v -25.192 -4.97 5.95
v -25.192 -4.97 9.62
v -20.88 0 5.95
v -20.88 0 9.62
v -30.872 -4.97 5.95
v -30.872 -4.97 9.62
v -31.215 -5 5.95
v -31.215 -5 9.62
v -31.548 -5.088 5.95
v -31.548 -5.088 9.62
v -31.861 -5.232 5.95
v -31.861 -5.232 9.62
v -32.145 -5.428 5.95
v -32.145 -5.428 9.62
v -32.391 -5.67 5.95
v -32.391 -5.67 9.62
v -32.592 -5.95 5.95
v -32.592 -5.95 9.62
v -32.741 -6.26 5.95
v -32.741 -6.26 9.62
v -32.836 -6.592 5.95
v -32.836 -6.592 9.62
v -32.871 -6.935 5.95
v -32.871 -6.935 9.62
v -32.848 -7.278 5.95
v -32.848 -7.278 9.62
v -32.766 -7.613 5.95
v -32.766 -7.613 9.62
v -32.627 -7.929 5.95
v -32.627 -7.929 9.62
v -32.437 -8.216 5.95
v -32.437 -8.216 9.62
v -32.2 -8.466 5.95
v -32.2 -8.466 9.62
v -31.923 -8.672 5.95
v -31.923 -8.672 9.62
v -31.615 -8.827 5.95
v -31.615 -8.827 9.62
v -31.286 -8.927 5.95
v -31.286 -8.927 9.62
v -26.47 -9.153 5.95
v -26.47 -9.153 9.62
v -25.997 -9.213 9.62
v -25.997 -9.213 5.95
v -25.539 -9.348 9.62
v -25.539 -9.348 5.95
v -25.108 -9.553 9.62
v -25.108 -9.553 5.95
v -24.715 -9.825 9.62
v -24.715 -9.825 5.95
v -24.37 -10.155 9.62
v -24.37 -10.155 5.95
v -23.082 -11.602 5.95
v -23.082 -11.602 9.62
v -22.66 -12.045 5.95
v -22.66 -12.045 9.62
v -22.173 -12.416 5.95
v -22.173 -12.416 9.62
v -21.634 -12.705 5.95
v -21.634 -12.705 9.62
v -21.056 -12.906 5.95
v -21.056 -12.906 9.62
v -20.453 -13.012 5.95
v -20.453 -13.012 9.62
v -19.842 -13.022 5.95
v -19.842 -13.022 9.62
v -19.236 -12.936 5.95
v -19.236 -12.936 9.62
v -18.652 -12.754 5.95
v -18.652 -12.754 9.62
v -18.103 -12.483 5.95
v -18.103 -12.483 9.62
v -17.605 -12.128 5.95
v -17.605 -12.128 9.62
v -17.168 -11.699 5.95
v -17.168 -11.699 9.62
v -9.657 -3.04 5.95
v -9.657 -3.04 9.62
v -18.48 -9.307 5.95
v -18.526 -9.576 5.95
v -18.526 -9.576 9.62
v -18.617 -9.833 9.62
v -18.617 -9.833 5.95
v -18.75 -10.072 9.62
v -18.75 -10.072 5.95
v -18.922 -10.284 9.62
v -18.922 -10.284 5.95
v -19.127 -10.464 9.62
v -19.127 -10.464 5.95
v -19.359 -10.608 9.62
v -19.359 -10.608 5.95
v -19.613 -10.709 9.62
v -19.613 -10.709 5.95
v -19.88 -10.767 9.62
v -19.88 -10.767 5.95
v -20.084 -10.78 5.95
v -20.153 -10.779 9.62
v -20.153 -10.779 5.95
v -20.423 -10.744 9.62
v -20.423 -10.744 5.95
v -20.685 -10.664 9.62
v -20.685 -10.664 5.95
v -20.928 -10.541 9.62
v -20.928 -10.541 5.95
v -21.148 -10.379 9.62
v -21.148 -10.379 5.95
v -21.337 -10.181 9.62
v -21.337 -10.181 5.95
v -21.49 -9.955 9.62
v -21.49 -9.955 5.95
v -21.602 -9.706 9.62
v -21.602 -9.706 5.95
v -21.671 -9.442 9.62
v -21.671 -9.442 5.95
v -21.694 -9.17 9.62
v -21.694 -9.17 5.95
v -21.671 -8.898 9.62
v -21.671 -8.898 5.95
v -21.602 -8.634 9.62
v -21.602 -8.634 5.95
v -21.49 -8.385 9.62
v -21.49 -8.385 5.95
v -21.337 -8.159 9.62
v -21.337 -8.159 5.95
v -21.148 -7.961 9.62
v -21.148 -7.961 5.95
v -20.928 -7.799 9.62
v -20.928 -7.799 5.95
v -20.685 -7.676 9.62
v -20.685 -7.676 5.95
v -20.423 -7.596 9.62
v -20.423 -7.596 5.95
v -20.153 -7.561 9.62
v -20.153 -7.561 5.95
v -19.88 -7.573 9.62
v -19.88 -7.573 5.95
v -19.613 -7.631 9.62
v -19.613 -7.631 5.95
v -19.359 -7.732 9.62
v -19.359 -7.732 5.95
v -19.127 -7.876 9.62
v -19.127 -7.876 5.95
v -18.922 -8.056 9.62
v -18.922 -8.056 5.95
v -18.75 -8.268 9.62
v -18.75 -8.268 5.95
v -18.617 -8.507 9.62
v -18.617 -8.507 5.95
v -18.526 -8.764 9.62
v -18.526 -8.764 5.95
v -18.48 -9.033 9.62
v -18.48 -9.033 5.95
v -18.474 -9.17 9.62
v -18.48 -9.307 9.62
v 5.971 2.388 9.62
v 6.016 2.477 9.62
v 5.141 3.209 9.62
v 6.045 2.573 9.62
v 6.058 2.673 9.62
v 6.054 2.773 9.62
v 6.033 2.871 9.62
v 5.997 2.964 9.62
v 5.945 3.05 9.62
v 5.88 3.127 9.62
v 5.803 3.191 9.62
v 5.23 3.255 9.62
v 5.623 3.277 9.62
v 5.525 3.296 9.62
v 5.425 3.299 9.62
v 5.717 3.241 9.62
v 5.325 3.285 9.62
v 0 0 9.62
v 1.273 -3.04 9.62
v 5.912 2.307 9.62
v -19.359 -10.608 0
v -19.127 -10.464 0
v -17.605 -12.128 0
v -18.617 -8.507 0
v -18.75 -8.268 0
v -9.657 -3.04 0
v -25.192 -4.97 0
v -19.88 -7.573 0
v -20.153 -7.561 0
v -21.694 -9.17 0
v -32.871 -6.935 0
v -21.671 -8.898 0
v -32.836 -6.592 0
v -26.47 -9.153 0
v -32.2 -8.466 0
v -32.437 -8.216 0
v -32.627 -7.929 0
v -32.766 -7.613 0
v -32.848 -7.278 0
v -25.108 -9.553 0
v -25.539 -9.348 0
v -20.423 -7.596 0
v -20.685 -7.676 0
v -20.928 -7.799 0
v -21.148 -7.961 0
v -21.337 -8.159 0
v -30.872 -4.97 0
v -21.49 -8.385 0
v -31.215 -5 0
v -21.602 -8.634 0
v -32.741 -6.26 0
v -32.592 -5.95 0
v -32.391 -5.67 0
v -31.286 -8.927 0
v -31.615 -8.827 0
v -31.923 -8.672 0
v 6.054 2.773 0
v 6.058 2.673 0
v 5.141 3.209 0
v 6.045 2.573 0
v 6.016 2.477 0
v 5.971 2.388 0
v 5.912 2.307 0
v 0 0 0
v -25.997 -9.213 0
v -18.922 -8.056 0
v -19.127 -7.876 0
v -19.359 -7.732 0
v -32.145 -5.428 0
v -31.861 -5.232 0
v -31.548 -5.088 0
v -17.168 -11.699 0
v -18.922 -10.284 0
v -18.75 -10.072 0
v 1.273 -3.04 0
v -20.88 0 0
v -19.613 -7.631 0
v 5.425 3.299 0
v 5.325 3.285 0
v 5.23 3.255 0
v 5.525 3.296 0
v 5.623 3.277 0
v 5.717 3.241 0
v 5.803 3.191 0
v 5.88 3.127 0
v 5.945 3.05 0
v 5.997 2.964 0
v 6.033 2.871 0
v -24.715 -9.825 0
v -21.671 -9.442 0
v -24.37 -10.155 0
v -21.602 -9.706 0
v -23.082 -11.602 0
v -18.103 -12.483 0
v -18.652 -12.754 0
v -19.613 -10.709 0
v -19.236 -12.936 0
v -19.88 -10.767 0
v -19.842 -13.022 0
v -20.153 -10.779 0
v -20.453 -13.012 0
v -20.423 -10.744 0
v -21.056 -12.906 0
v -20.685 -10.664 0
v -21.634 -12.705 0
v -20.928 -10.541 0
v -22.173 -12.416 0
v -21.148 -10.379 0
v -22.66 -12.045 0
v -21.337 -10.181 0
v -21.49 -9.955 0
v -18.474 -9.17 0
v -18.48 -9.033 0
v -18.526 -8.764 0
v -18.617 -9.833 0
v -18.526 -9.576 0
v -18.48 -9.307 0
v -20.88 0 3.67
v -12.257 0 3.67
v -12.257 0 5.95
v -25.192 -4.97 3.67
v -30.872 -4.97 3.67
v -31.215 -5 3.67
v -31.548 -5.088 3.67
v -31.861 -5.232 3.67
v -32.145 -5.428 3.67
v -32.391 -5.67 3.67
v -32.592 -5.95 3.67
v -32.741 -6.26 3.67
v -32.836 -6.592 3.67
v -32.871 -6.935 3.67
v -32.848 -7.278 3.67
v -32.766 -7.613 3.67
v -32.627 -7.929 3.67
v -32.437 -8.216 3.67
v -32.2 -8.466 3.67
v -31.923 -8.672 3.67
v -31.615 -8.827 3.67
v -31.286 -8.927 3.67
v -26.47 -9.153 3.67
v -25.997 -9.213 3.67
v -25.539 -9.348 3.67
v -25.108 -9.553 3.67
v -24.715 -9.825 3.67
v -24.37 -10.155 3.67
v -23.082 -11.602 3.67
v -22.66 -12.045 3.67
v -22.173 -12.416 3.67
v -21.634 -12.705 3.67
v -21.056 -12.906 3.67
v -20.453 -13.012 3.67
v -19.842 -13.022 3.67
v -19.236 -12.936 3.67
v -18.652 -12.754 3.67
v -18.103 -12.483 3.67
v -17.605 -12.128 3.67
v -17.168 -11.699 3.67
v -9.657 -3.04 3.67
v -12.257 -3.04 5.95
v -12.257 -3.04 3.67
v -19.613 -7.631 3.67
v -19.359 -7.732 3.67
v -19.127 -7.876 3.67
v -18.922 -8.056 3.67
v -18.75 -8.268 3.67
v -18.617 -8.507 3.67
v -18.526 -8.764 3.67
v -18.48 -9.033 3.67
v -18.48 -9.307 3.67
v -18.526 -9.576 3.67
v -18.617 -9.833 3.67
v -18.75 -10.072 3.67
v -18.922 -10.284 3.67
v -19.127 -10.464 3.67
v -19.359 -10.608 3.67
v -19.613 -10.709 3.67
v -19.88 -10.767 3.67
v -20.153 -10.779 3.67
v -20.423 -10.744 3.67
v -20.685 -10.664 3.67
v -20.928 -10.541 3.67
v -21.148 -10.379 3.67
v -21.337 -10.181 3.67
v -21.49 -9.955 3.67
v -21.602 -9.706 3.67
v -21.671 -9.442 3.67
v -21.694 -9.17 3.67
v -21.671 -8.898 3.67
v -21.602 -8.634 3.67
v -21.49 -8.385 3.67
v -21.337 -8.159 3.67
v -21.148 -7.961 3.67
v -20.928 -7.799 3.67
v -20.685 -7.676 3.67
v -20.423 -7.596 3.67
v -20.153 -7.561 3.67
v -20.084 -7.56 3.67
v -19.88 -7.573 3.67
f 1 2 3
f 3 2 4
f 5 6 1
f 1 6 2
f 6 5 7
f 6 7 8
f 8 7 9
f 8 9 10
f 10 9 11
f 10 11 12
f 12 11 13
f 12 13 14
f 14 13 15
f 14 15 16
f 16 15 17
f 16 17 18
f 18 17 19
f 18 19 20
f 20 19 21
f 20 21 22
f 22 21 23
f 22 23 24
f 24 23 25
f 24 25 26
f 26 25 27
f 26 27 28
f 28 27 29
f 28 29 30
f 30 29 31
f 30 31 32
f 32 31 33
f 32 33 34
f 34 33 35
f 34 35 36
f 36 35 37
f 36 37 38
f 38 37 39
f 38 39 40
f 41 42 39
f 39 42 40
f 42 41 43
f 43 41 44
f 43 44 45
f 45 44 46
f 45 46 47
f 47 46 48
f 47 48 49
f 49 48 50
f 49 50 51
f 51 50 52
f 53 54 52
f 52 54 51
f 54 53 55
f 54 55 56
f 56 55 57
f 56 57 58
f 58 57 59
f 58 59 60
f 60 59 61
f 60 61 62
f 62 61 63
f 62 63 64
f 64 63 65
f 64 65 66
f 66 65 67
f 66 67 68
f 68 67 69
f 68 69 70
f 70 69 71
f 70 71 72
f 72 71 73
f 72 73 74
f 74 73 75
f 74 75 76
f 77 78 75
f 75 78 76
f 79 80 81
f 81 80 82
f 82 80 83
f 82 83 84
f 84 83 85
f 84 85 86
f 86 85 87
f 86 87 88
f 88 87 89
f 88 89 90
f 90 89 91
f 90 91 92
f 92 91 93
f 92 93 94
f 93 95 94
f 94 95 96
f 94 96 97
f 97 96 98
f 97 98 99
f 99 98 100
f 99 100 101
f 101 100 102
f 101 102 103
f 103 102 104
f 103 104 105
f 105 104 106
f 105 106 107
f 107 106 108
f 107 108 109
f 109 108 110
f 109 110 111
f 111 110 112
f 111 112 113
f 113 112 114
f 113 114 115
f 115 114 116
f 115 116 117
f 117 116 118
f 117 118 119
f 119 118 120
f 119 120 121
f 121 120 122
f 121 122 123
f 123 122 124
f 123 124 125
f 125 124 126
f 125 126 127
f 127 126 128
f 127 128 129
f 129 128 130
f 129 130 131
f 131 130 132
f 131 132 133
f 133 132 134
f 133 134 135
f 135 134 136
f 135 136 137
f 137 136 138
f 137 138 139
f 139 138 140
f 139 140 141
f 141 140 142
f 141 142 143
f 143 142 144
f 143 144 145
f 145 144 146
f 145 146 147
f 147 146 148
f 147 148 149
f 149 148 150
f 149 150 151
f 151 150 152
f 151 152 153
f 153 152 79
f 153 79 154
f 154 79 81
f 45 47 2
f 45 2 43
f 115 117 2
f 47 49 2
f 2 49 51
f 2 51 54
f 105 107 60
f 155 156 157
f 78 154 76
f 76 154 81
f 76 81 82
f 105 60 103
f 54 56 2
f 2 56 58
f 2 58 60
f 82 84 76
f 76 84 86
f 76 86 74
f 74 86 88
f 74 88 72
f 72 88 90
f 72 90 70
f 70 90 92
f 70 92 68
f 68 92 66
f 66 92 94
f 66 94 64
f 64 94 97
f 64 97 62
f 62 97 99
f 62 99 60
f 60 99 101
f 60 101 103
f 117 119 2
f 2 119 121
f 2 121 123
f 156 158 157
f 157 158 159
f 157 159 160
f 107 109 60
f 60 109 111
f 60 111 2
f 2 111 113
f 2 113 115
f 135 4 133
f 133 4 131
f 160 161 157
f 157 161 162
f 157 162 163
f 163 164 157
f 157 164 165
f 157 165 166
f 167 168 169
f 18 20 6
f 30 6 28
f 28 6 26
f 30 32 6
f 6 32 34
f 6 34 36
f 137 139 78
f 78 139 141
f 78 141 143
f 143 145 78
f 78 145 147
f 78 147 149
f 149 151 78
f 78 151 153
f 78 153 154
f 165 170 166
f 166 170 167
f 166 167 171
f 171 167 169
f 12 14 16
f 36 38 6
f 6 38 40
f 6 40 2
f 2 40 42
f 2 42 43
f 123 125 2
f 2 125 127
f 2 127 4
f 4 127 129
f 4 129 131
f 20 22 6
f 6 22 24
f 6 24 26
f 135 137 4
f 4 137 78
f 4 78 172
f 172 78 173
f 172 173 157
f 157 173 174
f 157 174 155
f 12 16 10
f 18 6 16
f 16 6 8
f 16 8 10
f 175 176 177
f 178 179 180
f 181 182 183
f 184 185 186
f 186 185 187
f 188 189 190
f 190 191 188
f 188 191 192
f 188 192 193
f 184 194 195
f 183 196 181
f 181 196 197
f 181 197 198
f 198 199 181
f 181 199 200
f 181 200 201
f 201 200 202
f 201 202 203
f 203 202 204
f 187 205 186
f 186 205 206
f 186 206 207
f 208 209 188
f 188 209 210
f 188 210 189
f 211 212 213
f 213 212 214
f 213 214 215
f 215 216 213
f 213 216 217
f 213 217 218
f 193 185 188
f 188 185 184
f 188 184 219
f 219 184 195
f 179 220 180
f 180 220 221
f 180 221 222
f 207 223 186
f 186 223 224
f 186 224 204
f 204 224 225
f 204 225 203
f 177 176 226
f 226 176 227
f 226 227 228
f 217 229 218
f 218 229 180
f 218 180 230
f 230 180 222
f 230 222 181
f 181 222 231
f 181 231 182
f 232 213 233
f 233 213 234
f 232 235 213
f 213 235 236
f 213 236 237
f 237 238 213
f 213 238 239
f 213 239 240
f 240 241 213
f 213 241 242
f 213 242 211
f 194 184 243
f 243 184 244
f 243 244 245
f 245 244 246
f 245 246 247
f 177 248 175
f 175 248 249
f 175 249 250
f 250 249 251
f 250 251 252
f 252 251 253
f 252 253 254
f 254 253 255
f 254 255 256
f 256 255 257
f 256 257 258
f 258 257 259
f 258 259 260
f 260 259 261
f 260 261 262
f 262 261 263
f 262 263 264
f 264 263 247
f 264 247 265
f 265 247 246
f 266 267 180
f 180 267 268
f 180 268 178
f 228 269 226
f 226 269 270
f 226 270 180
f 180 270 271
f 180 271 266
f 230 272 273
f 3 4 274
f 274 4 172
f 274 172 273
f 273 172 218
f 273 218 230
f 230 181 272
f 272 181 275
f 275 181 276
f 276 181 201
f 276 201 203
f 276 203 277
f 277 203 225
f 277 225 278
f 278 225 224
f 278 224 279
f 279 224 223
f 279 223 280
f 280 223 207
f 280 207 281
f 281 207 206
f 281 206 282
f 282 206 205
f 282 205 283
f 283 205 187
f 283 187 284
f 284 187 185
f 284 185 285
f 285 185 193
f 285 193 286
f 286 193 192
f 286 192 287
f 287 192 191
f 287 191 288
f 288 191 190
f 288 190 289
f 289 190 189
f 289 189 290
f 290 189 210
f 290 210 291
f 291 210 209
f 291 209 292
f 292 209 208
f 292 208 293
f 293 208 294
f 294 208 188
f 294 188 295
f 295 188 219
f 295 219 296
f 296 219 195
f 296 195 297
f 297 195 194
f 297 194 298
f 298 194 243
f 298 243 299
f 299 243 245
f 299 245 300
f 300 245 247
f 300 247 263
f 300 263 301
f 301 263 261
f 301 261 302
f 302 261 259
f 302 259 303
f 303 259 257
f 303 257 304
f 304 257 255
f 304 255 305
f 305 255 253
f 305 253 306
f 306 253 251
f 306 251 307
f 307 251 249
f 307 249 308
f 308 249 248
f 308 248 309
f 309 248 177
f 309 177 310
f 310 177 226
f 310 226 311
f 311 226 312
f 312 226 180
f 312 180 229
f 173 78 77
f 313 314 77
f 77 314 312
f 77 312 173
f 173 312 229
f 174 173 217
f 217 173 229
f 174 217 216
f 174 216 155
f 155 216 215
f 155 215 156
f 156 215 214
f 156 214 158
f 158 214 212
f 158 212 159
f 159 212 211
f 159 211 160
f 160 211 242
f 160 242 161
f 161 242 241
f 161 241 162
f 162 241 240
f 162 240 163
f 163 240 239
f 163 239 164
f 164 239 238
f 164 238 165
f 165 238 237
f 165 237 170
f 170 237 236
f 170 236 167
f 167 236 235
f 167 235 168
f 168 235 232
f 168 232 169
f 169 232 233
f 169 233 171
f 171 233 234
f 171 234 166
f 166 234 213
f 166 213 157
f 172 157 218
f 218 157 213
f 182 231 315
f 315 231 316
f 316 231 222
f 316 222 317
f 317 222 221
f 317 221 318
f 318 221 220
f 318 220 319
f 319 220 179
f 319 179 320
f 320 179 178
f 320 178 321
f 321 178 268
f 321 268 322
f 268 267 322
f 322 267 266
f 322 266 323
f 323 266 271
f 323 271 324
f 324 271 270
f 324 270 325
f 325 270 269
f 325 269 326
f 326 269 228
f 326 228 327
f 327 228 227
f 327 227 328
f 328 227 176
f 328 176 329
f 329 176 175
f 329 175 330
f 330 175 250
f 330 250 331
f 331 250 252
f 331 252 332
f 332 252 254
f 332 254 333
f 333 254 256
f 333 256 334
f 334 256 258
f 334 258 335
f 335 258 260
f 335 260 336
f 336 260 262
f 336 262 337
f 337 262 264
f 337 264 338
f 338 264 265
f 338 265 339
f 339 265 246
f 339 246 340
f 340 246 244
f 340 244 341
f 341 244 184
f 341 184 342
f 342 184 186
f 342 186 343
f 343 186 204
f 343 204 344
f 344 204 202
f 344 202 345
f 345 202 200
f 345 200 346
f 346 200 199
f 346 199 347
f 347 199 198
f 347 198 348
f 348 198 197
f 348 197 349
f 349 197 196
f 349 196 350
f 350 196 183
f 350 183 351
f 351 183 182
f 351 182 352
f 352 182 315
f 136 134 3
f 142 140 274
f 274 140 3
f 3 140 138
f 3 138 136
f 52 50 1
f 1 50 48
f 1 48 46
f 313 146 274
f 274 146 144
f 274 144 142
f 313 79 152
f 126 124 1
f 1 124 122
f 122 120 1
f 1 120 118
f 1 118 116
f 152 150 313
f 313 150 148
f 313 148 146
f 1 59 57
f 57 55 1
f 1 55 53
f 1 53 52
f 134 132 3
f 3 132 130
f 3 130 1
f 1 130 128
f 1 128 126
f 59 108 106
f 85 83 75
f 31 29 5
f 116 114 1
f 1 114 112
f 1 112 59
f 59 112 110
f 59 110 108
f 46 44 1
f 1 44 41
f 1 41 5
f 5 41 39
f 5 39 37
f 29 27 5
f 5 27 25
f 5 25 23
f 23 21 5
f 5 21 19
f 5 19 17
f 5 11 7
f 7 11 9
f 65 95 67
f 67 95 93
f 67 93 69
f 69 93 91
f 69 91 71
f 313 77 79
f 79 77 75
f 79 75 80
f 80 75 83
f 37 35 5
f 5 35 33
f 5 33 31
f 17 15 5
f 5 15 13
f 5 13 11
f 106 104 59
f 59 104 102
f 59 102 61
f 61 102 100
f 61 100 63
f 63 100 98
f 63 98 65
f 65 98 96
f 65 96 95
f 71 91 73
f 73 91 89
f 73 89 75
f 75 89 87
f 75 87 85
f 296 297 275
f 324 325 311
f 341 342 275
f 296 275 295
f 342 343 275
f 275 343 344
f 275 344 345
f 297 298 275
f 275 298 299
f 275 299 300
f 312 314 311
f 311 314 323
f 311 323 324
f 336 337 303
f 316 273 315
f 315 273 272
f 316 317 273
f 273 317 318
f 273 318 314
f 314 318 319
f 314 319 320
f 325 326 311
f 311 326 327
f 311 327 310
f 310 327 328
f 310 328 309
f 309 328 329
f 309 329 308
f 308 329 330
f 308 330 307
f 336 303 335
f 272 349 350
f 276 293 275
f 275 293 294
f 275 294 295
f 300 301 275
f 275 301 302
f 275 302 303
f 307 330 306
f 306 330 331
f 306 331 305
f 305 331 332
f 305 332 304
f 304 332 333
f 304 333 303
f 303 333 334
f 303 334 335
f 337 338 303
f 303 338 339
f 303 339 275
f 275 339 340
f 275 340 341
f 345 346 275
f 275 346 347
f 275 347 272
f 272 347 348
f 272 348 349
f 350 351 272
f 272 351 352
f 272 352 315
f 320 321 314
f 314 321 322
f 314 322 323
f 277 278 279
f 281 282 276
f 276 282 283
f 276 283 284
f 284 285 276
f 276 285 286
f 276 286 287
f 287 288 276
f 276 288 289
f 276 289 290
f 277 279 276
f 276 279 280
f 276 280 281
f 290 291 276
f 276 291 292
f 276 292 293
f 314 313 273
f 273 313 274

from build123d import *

# Parameters (mm, degrees)
SKETCH1_R           = 1.61
BOSS_EXTRUDE1_DEPTH = 9.62
CUT_EXTRUDE1_REACH  = 23.691
SKETCH2_W           = 2.28
SKETCH2_H           = 19.007620098
SKETCH3_W           = 11.260460121
SKETCH3_H           = 2.28
CUT_EXTRUDE2_DEPTH  = 3.04


with BuildPart() as part:
    # Sketch1 → Boss-Extrude1 (new body)
    with BuildSketch(Plane.XY):
        with BuildLine():
            Line((0, 0), (5.140631262, 3.208973392))
            ThreePointArc((5.140631262, 3.208973392), (5.914482507, 3.089800479), (5.911583106, 2.306832072))
            Line((5.911583106, 2.306832072), (1.273331069, -3.04))
            Line((1.273331069, -3.04), (-9.656668931, -3.04))
            Line((-9.656668931, -3.04), (-17.168479282, -11.699380338))
            ThreePointArc((-17.168479282, -11.699380338), (-20.147653582, -13.029479565), (-23.08154503, -11.60227095))
            Line((-23.08154503, -11.60227095), (-24.370177587, -10.154805065))
            ThreePointArc((-24.370177587, -10.154805065), (-25.319176443, -9.441943032), (-26.47036432, -9.152914355))
            Line((-26.47036432, -9.152914355), (-31.285658795, -8.927140459))
            ThreePointArc((-31.285658795, -8.927140459), (-32.860887009, -6.762353106), (-30.871741613, -4.970441053))
            Line((-30.871741613, -4.970441053), (-25.191741613, -4.970441053))
            Line((-25.191741613, -4.970441053), (-20.88, 0))
            Line((-20.88, 0), (0, 0))
        make_face()
        with Locations((-20.08426993, -9.17)):
            Circle(SKETCH1_R, mode=Mode.SUBTRACT)
    extrude(amount=BOSS_EXTRUDE1_DEPTH)

    # Cut-Extrude1: up to this face of the body (flat: up to its plane)
    cut_extrude1_end = Plane(part.part.faces().sort_by_distance((-4.191668931, -3.04, 4.81))[0])
    # Sketch2 → Cut-Extrude1 (cut, up to the picked face)
    with BuildSketch(Plane(origin=(-4.005407565, 3.474597584, 0), x_dir=(0, 0, -1), z_dir=(0.755386178, -0.65527988, 0)), mode=Mode.PRIVATE) as cut_extrude1_sk1:
        with Locations((-4.81, -18.128004893)):
            Rectangle(SKETCH2_W, SKETCH2_H)
    cut_extrude1_tool1 = split(extrude(cut_extrude1_sk1.sketch, amount=-CUT_EXTRUDE1_REACH, mode=Mode.PRIVATE), bisect_by=cut_extrude1_end, keep=Keep.BOTH, mode=Mode.PRIVATE)
    add(cut_extrude1_tool1.solids().sort_by_distance((-15.884324, -10.219047, 4.81))[0], mode=Mode.SUBTRACT)

    # Sketch3 → Cut-Extrude2 (cut)
    with BuildSketch(Plane.XZ.offset(3.04)):
        with Locations((-17.886898992, 4.81)):
            Rectangle(SKETCH3_W, SKETCH3_H)
    extrude(amount=-CUT_EXTRUDE2_DEPTH, mode=Mode.SUBTRACT)


solid = part.part
